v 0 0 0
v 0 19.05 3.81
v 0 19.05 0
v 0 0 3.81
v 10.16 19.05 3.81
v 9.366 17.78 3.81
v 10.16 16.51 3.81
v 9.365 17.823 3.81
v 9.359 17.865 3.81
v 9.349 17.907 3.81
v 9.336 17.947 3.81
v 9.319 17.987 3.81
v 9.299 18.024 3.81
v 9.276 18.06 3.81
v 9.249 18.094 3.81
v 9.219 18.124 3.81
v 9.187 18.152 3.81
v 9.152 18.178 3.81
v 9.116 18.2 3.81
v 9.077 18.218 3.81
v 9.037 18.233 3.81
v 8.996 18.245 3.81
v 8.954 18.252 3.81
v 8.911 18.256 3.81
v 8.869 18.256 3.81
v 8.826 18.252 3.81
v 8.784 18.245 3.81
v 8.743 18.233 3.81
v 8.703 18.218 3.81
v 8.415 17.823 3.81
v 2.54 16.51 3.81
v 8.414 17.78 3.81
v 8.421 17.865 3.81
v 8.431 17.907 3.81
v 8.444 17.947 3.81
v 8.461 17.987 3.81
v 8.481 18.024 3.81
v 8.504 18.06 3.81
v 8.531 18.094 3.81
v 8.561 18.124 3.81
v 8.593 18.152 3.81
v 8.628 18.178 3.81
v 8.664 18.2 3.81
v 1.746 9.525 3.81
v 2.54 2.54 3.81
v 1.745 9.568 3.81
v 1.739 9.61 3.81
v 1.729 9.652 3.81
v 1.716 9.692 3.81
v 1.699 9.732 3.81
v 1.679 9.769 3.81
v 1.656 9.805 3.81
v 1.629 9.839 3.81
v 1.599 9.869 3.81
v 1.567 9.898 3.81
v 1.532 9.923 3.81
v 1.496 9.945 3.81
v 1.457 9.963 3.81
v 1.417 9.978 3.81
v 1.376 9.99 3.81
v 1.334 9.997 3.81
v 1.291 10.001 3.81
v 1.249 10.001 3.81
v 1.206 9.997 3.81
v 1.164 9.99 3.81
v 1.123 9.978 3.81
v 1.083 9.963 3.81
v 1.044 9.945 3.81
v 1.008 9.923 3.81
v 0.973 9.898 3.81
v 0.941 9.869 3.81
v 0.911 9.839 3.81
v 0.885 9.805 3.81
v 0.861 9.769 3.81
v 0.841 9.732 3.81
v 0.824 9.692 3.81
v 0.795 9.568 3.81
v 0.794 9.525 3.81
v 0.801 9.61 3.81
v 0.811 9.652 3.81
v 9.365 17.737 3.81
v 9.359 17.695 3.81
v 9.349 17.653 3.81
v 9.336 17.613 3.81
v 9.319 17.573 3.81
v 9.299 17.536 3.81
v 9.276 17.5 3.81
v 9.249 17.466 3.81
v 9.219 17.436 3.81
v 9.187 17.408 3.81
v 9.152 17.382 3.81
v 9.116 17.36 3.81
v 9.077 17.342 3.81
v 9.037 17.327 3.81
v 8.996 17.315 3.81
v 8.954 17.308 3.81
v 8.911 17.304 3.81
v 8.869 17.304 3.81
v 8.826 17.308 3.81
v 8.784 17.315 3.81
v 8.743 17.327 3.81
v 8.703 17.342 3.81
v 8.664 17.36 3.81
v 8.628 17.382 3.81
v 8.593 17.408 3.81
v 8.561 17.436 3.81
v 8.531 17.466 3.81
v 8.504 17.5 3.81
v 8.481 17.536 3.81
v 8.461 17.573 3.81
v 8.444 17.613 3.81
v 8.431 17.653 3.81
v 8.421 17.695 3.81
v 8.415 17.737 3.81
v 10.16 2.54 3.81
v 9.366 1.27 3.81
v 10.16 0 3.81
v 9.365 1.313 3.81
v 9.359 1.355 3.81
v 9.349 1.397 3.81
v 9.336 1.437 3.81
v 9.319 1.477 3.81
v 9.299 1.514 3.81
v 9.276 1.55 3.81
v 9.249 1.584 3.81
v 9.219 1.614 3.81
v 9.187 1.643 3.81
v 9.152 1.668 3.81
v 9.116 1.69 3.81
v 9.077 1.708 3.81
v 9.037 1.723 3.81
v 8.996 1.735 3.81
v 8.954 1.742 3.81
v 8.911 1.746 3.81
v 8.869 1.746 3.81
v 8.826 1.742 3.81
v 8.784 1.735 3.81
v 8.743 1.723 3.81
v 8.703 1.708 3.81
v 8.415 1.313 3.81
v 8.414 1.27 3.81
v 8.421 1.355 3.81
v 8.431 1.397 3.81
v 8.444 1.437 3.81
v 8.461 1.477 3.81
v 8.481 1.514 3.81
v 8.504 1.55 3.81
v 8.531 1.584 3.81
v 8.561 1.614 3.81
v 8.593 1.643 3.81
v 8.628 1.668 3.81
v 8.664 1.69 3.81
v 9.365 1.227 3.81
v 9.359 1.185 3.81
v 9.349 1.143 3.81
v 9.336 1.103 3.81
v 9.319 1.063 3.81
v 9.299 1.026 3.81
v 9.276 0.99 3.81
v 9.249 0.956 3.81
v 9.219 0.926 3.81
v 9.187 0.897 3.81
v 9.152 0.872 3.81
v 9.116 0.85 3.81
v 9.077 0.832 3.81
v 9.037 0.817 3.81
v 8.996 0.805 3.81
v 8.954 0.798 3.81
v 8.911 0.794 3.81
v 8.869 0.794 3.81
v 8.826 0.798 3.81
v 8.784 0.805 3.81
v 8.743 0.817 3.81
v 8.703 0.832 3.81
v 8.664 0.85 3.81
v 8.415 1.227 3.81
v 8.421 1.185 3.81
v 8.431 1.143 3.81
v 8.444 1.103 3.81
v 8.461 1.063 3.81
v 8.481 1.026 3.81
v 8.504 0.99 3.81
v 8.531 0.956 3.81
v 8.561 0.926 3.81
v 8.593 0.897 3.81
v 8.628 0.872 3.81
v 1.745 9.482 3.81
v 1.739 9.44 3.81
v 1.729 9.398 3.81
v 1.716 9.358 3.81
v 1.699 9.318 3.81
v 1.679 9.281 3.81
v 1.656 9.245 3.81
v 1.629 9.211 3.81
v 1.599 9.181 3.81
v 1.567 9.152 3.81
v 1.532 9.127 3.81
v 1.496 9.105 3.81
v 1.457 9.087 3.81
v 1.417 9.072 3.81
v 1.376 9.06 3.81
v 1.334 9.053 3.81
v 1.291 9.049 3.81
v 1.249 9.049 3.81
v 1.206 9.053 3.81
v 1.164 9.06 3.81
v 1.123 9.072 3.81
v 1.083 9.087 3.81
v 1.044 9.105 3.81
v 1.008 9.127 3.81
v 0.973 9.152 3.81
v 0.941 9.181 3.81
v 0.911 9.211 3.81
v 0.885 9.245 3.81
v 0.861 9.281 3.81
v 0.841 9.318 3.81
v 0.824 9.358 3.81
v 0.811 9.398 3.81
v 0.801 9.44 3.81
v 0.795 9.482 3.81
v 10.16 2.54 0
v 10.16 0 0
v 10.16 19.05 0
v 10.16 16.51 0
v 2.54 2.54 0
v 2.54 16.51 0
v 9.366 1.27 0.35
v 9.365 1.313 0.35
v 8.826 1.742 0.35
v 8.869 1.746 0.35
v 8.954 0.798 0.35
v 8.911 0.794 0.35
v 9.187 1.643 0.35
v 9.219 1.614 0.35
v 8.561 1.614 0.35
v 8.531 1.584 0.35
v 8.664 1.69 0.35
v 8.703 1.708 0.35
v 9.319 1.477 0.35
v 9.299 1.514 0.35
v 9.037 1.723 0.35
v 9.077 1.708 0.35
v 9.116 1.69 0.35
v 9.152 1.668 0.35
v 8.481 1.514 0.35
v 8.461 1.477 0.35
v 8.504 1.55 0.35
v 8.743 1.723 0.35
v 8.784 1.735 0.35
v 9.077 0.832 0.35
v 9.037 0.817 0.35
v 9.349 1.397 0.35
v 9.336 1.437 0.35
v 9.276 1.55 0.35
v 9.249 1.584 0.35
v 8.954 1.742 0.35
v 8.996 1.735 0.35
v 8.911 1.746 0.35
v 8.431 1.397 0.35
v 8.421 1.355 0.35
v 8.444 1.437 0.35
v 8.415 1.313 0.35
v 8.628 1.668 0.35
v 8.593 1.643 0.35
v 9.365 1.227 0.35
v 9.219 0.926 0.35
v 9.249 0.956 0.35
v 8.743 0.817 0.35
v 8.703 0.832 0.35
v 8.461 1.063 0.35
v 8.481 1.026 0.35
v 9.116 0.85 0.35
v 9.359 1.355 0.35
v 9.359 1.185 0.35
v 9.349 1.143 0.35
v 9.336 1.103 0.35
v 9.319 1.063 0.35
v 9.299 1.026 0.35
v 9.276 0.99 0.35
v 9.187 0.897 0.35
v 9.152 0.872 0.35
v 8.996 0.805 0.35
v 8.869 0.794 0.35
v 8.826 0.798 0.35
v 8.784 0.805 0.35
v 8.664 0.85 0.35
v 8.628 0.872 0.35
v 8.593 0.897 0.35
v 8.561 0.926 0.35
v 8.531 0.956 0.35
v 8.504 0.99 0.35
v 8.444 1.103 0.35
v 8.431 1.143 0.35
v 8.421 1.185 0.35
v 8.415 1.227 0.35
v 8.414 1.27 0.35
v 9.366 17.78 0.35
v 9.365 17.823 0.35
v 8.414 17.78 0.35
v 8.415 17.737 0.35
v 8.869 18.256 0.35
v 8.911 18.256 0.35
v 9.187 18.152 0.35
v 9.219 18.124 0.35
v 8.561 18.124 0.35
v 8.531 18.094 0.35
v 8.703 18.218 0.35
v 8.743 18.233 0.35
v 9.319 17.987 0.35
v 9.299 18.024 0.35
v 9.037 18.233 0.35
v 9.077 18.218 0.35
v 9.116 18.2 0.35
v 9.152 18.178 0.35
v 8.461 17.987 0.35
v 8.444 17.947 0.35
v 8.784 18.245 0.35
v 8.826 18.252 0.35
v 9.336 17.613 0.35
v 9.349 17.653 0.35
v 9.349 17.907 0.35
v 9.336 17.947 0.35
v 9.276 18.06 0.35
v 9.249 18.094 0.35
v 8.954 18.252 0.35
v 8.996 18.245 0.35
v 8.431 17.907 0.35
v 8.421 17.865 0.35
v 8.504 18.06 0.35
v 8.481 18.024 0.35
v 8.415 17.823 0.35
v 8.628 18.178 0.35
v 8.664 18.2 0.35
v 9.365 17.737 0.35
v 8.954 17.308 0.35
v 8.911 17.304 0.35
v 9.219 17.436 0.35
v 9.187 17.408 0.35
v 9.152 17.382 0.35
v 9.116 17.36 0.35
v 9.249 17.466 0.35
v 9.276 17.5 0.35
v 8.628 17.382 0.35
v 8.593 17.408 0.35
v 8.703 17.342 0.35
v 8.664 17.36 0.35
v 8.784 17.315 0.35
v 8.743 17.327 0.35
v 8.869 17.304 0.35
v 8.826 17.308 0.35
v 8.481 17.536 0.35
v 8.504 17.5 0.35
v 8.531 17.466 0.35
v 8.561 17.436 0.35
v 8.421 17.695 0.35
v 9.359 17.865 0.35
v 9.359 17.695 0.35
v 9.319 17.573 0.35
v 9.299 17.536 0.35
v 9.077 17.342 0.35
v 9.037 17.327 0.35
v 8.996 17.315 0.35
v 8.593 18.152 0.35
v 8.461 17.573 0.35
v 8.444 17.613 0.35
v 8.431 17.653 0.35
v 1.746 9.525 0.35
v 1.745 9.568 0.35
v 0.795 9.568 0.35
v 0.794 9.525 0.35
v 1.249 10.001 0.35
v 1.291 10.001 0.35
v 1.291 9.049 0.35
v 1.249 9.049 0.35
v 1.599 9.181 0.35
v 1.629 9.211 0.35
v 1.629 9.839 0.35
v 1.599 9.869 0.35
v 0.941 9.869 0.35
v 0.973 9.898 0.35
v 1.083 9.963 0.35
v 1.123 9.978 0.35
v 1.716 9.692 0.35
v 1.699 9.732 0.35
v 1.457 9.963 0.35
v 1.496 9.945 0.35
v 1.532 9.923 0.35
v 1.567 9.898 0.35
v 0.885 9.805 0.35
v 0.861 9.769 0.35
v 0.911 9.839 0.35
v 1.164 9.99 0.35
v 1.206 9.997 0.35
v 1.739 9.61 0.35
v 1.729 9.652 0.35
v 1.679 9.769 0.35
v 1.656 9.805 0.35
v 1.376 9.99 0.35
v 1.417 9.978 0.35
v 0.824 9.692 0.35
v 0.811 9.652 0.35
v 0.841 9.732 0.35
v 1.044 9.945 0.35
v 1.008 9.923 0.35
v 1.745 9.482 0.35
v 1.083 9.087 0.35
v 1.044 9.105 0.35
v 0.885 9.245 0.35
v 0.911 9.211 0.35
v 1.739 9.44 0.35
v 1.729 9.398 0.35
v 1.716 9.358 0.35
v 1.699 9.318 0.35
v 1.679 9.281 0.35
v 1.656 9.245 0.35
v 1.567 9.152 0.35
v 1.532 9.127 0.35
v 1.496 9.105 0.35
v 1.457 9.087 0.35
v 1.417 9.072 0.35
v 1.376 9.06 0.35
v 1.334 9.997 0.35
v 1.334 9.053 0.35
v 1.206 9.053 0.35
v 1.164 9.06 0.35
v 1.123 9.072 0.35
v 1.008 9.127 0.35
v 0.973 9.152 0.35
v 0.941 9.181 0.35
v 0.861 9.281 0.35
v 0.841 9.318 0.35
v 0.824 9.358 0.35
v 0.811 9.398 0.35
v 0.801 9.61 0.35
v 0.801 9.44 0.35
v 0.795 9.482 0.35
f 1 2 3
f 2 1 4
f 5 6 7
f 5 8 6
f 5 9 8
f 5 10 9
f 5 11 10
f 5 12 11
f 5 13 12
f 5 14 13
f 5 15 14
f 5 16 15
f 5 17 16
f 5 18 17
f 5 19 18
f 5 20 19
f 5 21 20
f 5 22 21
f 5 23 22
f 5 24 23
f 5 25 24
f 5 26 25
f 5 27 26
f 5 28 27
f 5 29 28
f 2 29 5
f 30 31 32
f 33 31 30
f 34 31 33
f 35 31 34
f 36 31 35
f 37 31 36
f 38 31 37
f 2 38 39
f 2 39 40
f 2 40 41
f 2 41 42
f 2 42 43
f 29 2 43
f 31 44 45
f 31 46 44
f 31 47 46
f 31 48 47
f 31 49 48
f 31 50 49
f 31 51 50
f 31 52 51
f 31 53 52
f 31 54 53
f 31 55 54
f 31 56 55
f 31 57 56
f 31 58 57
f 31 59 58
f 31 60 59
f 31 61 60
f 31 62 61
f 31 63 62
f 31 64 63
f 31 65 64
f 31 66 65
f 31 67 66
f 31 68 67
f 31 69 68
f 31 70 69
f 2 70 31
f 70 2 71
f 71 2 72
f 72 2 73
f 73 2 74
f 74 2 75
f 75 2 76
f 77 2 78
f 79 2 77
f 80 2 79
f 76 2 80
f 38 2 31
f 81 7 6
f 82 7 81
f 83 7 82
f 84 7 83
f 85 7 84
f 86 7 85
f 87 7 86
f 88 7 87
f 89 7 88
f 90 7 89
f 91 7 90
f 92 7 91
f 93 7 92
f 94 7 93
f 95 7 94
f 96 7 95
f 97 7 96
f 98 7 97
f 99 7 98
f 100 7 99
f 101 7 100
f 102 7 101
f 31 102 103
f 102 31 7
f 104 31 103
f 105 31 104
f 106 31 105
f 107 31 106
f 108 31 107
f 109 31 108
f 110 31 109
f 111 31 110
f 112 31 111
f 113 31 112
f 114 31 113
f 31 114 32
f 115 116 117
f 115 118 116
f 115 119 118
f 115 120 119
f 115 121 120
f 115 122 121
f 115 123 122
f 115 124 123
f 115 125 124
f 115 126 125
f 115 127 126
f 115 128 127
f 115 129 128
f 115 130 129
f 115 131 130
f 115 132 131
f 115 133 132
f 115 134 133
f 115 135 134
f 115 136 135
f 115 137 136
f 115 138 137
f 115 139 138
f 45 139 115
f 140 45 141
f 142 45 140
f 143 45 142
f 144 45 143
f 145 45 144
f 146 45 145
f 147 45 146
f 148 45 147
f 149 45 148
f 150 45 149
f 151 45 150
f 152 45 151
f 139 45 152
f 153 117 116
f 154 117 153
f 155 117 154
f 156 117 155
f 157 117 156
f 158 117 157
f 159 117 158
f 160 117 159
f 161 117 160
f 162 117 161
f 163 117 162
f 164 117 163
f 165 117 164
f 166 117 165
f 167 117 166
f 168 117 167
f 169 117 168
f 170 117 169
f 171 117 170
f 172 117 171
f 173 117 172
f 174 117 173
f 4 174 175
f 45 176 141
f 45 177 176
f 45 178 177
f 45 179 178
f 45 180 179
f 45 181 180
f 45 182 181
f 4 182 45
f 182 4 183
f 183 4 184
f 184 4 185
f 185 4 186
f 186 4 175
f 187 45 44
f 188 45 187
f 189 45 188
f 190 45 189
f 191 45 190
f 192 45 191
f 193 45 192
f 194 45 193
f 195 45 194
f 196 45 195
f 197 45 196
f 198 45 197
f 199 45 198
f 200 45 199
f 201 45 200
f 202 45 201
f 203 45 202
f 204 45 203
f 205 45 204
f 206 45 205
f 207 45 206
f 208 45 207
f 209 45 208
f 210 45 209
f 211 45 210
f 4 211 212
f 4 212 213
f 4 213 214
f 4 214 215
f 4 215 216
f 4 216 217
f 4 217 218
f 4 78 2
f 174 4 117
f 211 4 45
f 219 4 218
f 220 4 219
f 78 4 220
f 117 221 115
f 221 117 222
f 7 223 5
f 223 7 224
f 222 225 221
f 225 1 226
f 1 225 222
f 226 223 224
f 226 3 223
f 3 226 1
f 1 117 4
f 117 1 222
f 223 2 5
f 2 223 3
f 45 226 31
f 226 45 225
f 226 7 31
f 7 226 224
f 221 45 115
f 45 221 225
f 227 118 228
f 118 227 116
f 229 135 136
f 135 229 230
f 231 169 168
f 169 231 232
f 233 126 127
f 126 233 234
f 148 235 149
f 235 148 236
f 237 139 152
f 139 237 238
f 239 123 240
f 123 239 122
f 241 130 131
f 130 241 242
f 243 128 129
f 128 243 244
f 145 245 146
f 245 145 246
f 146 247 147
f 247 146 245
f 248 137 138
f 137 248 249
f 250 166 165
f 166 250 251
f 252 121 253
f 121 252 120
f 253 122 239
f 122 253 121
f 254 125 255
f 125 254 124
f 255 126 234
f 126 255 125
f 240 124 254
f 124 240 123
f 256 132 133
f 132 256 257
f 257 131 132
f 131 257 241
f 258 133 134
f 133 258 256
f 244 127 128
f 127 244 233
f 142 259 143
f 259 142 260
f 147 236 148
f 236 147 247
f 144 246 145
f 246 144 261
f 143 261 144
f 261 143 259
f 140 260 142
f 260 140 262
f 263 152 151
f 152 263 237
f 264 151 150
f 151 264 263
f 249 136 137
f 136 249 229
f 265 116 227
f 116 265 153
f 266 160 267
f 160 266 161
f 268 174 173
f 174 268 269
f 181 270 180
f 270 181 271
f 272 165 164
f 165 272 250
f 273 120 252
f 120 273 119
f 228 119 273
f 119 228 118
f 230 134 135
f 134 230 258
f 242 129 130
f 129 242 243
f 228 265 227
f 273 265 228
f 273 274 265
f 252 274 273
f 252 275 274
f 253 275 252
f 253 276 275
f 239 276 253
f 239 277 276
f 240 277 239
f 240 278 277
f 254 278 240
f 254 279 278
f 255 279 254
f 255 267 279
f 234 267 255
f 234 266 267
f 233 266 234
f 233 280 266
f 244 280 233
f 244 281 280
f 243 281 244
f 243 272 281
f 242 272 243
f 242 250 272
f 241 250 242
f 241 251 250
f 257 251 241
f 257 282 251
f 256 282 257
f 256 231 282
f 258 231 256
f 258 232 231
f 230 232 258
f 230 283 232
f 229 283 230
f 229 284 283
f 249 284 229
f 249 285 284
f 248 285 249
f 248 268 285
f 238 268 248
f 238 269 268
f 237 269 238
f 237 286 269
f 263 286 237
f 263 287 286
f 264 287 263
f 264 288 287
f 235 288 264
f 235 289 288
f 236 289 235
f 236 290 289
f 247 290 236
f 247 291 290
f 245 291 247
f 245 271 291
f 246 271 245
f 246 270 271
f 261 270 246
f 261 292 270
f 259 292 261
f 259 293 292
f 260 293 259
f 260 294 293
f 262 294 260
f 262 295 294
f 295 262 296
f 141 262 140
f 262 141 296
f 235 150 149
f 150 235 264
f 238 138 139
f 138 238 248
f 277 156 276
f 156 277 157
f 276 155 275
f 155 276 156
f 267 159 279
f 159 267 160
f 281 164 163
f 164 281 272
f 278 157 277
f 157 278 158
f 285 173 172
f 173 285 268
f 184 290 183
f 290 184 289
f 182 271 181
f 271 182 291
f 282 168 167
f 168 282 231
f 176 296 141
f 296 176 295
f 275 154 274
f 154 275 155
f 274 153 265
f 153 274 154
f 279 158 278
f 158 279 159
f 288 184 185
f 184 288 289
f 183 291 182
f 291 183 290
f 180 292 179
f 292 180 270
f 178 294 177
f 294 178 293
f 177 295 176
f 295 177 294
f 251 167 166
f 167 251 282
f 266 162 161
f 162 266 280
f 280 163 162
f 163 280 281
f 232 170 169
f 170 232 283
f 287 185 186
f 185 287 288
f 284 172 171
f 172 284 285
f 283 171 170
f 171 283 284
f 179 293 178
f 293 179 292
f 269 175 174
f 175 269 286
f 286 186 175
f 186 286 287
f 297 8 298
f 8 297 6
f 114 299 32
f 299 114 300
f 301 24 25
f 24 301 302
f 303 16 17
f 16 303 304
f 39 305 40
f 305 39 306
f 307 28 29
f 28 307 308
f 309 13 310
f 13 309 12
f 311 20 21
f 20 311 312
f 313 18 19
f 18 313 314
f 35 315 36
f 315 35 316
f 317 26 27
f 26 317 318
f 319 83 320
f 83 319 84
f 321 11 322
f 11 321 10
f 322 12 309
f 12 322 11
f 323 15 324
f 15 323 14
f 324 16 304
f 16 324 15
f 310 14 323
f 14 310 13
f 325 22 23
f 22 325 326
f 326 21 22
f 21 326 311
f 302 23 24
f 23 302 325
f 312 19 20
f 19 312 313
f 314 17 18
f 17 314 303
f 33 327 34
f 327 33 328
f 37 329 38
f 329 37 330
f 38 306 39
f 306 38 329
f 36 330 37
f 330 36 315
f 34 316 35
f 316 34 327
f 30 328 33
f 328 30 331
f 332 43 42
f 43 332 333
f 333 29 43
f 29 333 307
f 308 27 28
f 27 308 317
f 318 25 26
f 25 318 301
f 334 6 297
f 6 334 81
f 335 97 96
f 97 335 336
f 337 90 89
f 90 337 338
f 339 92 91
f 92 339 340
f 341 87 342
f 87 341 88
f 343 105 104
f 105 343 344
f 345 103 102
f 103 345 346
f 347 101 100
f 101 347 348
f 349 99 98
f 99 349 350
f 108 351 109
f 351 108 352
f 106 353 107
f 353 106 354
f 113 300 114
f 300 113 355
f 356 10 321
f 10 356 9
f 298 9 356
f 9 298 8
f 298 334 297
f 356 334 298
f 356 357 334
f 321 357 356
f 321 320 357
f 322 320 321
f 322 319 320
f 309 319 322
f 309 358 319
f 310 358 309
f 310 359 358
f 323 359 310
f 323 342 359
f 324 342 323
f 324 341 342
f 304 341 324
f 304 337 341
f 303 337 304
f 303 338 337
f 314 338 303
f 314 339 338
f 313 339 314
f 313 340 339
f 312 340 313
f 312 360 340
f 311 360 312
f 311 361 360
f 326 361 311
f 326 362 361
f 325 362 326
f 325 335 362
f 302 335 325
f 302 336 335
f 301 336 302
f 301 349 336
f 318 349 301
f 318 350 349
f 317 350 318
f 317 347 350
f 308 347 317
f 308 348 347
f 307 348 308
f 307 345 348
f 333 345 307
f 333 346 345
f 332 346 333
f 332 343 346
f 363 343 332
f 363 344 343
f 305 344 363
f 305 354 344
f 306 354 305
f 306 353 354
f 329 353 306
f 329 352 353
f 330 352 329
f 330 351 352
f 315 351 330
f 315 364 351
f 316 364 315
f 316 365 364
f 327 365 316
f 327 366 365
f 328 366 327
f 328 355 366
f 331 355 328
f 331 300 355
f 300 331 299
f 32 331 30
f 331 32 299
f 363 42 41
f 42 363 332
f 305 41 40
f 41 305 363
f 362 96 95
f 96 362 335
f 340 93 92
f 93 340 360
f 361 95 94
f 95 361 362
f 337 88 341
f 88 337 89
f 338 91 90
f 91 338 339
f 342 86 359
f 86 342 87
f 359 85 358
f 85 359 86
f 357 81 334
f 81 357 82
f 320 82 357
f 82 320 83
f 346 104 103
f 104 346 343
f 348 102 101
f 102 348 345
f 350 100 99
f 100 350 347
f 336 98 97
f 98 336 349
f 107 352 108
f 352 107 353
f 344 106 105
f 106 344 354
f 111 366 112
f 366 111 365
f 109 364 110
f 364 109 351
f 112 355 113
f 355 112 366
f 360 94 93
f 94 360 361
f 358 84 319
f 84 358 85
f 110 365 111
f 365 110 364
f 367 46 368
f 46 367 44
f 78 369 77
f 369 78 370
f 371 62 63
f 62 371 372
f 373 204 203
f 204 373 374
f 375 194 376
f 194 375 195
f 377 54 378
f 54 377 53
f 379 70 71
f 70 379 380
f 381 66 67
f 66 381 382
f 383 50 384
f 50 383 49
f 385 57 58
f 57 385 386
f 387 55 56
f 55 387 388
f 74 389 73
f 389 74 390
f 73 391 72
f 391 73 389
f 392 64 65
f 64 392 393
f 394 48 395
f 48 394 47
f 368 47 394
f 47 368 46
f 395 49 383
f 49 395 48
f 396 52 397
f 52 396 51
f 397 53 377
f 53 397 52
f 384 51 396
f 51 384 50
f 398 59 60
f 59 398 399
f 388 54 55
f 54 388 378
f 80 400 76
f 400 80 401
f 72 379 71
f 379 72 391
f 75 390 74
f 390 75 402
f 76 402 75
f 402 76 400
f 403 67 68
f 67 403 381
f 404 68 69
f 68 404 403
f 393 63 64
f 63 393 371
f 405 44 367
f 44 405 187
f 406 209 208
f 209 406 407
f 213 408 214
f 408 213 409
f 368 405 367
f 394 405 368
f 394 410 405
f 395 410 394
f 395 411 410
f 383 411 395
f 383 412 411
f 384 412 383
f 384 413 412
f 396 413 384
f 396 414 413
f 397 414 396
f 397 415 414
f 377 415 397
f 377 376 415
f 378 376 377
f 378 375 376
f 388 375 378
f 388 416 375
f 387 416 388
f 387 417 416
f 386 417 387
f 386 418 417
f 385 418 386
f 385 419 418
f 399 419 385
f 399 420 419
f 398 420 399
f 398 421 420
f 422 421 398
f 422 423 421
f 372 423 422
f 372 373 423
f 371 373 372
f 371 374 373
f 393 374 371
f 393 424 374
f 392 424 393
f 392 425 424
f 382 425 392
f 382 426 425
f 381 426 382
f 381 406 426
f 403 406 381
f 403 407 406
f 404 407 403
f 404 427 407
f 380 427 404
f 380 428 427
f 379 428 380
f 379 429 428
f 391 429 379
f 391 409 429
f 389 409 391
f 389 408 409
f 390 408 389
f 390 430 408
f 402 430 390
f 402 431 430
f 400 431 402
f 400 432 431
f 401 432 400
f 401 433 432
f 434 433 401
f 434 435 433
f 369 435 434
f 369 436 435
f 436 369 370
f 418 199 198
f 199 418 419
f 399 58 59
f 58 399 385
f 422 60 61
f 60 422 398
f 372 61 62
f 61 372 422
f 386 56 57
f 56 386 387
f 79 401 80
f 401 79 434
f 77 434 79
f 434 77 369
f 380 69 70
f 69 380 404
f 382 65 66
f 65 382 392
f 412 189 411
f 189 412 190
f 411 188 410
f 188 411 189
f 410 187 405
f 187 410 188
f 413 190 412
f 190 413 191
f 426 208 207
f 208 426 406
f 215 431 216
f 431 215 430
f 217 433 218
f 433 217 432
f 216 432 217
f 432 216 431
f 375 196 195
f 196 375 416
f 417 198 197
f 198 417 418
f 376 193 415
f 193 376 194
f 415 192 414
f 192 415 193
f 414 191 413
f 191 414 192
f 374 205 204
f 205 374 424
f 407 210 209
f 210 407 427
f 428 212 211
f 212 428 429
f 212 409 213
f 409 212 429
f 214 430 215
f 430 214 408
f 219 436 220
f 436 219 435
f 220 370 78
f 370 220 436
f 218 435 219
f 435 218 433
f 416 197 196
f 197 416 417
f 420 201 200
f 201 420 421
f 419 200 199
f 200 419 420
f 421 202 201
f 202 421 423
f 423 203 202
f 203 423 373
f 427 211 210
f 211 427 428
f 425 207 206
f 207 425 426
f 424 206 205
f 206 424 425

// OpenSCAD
// Part   : Component 7 - Aft Deck Railing
// Author : Rafi Khan
// Team   : Innovator

difference() {
	// Initial Cuboid
	cube(size=[10.16, 19.05, 3.81], center=false);

	// Subtract centre piece
	translate([2.54, 2.54, -.5])
	cube(size=[7.64, 13.97, 4.4], center=false);

	// Rear Right Peg Insert
	translate([8.89, 1.27, 0.35]){
		cylinder(h=3.49, d=0.953, center=false, $fn=70);
	}

	// Rear Left Peg Insert
	translate([8.89, 17.78, 0.35]){
		cylinder(h=3.49, d=0.953, center=false, $fn=70);
	}

	// Front Center Peg Insert
	translate([1.27, 9.525, 0.35]){
		cylinder(h=3.49, d=0.953, center=false, $fn=70);
	}
}
